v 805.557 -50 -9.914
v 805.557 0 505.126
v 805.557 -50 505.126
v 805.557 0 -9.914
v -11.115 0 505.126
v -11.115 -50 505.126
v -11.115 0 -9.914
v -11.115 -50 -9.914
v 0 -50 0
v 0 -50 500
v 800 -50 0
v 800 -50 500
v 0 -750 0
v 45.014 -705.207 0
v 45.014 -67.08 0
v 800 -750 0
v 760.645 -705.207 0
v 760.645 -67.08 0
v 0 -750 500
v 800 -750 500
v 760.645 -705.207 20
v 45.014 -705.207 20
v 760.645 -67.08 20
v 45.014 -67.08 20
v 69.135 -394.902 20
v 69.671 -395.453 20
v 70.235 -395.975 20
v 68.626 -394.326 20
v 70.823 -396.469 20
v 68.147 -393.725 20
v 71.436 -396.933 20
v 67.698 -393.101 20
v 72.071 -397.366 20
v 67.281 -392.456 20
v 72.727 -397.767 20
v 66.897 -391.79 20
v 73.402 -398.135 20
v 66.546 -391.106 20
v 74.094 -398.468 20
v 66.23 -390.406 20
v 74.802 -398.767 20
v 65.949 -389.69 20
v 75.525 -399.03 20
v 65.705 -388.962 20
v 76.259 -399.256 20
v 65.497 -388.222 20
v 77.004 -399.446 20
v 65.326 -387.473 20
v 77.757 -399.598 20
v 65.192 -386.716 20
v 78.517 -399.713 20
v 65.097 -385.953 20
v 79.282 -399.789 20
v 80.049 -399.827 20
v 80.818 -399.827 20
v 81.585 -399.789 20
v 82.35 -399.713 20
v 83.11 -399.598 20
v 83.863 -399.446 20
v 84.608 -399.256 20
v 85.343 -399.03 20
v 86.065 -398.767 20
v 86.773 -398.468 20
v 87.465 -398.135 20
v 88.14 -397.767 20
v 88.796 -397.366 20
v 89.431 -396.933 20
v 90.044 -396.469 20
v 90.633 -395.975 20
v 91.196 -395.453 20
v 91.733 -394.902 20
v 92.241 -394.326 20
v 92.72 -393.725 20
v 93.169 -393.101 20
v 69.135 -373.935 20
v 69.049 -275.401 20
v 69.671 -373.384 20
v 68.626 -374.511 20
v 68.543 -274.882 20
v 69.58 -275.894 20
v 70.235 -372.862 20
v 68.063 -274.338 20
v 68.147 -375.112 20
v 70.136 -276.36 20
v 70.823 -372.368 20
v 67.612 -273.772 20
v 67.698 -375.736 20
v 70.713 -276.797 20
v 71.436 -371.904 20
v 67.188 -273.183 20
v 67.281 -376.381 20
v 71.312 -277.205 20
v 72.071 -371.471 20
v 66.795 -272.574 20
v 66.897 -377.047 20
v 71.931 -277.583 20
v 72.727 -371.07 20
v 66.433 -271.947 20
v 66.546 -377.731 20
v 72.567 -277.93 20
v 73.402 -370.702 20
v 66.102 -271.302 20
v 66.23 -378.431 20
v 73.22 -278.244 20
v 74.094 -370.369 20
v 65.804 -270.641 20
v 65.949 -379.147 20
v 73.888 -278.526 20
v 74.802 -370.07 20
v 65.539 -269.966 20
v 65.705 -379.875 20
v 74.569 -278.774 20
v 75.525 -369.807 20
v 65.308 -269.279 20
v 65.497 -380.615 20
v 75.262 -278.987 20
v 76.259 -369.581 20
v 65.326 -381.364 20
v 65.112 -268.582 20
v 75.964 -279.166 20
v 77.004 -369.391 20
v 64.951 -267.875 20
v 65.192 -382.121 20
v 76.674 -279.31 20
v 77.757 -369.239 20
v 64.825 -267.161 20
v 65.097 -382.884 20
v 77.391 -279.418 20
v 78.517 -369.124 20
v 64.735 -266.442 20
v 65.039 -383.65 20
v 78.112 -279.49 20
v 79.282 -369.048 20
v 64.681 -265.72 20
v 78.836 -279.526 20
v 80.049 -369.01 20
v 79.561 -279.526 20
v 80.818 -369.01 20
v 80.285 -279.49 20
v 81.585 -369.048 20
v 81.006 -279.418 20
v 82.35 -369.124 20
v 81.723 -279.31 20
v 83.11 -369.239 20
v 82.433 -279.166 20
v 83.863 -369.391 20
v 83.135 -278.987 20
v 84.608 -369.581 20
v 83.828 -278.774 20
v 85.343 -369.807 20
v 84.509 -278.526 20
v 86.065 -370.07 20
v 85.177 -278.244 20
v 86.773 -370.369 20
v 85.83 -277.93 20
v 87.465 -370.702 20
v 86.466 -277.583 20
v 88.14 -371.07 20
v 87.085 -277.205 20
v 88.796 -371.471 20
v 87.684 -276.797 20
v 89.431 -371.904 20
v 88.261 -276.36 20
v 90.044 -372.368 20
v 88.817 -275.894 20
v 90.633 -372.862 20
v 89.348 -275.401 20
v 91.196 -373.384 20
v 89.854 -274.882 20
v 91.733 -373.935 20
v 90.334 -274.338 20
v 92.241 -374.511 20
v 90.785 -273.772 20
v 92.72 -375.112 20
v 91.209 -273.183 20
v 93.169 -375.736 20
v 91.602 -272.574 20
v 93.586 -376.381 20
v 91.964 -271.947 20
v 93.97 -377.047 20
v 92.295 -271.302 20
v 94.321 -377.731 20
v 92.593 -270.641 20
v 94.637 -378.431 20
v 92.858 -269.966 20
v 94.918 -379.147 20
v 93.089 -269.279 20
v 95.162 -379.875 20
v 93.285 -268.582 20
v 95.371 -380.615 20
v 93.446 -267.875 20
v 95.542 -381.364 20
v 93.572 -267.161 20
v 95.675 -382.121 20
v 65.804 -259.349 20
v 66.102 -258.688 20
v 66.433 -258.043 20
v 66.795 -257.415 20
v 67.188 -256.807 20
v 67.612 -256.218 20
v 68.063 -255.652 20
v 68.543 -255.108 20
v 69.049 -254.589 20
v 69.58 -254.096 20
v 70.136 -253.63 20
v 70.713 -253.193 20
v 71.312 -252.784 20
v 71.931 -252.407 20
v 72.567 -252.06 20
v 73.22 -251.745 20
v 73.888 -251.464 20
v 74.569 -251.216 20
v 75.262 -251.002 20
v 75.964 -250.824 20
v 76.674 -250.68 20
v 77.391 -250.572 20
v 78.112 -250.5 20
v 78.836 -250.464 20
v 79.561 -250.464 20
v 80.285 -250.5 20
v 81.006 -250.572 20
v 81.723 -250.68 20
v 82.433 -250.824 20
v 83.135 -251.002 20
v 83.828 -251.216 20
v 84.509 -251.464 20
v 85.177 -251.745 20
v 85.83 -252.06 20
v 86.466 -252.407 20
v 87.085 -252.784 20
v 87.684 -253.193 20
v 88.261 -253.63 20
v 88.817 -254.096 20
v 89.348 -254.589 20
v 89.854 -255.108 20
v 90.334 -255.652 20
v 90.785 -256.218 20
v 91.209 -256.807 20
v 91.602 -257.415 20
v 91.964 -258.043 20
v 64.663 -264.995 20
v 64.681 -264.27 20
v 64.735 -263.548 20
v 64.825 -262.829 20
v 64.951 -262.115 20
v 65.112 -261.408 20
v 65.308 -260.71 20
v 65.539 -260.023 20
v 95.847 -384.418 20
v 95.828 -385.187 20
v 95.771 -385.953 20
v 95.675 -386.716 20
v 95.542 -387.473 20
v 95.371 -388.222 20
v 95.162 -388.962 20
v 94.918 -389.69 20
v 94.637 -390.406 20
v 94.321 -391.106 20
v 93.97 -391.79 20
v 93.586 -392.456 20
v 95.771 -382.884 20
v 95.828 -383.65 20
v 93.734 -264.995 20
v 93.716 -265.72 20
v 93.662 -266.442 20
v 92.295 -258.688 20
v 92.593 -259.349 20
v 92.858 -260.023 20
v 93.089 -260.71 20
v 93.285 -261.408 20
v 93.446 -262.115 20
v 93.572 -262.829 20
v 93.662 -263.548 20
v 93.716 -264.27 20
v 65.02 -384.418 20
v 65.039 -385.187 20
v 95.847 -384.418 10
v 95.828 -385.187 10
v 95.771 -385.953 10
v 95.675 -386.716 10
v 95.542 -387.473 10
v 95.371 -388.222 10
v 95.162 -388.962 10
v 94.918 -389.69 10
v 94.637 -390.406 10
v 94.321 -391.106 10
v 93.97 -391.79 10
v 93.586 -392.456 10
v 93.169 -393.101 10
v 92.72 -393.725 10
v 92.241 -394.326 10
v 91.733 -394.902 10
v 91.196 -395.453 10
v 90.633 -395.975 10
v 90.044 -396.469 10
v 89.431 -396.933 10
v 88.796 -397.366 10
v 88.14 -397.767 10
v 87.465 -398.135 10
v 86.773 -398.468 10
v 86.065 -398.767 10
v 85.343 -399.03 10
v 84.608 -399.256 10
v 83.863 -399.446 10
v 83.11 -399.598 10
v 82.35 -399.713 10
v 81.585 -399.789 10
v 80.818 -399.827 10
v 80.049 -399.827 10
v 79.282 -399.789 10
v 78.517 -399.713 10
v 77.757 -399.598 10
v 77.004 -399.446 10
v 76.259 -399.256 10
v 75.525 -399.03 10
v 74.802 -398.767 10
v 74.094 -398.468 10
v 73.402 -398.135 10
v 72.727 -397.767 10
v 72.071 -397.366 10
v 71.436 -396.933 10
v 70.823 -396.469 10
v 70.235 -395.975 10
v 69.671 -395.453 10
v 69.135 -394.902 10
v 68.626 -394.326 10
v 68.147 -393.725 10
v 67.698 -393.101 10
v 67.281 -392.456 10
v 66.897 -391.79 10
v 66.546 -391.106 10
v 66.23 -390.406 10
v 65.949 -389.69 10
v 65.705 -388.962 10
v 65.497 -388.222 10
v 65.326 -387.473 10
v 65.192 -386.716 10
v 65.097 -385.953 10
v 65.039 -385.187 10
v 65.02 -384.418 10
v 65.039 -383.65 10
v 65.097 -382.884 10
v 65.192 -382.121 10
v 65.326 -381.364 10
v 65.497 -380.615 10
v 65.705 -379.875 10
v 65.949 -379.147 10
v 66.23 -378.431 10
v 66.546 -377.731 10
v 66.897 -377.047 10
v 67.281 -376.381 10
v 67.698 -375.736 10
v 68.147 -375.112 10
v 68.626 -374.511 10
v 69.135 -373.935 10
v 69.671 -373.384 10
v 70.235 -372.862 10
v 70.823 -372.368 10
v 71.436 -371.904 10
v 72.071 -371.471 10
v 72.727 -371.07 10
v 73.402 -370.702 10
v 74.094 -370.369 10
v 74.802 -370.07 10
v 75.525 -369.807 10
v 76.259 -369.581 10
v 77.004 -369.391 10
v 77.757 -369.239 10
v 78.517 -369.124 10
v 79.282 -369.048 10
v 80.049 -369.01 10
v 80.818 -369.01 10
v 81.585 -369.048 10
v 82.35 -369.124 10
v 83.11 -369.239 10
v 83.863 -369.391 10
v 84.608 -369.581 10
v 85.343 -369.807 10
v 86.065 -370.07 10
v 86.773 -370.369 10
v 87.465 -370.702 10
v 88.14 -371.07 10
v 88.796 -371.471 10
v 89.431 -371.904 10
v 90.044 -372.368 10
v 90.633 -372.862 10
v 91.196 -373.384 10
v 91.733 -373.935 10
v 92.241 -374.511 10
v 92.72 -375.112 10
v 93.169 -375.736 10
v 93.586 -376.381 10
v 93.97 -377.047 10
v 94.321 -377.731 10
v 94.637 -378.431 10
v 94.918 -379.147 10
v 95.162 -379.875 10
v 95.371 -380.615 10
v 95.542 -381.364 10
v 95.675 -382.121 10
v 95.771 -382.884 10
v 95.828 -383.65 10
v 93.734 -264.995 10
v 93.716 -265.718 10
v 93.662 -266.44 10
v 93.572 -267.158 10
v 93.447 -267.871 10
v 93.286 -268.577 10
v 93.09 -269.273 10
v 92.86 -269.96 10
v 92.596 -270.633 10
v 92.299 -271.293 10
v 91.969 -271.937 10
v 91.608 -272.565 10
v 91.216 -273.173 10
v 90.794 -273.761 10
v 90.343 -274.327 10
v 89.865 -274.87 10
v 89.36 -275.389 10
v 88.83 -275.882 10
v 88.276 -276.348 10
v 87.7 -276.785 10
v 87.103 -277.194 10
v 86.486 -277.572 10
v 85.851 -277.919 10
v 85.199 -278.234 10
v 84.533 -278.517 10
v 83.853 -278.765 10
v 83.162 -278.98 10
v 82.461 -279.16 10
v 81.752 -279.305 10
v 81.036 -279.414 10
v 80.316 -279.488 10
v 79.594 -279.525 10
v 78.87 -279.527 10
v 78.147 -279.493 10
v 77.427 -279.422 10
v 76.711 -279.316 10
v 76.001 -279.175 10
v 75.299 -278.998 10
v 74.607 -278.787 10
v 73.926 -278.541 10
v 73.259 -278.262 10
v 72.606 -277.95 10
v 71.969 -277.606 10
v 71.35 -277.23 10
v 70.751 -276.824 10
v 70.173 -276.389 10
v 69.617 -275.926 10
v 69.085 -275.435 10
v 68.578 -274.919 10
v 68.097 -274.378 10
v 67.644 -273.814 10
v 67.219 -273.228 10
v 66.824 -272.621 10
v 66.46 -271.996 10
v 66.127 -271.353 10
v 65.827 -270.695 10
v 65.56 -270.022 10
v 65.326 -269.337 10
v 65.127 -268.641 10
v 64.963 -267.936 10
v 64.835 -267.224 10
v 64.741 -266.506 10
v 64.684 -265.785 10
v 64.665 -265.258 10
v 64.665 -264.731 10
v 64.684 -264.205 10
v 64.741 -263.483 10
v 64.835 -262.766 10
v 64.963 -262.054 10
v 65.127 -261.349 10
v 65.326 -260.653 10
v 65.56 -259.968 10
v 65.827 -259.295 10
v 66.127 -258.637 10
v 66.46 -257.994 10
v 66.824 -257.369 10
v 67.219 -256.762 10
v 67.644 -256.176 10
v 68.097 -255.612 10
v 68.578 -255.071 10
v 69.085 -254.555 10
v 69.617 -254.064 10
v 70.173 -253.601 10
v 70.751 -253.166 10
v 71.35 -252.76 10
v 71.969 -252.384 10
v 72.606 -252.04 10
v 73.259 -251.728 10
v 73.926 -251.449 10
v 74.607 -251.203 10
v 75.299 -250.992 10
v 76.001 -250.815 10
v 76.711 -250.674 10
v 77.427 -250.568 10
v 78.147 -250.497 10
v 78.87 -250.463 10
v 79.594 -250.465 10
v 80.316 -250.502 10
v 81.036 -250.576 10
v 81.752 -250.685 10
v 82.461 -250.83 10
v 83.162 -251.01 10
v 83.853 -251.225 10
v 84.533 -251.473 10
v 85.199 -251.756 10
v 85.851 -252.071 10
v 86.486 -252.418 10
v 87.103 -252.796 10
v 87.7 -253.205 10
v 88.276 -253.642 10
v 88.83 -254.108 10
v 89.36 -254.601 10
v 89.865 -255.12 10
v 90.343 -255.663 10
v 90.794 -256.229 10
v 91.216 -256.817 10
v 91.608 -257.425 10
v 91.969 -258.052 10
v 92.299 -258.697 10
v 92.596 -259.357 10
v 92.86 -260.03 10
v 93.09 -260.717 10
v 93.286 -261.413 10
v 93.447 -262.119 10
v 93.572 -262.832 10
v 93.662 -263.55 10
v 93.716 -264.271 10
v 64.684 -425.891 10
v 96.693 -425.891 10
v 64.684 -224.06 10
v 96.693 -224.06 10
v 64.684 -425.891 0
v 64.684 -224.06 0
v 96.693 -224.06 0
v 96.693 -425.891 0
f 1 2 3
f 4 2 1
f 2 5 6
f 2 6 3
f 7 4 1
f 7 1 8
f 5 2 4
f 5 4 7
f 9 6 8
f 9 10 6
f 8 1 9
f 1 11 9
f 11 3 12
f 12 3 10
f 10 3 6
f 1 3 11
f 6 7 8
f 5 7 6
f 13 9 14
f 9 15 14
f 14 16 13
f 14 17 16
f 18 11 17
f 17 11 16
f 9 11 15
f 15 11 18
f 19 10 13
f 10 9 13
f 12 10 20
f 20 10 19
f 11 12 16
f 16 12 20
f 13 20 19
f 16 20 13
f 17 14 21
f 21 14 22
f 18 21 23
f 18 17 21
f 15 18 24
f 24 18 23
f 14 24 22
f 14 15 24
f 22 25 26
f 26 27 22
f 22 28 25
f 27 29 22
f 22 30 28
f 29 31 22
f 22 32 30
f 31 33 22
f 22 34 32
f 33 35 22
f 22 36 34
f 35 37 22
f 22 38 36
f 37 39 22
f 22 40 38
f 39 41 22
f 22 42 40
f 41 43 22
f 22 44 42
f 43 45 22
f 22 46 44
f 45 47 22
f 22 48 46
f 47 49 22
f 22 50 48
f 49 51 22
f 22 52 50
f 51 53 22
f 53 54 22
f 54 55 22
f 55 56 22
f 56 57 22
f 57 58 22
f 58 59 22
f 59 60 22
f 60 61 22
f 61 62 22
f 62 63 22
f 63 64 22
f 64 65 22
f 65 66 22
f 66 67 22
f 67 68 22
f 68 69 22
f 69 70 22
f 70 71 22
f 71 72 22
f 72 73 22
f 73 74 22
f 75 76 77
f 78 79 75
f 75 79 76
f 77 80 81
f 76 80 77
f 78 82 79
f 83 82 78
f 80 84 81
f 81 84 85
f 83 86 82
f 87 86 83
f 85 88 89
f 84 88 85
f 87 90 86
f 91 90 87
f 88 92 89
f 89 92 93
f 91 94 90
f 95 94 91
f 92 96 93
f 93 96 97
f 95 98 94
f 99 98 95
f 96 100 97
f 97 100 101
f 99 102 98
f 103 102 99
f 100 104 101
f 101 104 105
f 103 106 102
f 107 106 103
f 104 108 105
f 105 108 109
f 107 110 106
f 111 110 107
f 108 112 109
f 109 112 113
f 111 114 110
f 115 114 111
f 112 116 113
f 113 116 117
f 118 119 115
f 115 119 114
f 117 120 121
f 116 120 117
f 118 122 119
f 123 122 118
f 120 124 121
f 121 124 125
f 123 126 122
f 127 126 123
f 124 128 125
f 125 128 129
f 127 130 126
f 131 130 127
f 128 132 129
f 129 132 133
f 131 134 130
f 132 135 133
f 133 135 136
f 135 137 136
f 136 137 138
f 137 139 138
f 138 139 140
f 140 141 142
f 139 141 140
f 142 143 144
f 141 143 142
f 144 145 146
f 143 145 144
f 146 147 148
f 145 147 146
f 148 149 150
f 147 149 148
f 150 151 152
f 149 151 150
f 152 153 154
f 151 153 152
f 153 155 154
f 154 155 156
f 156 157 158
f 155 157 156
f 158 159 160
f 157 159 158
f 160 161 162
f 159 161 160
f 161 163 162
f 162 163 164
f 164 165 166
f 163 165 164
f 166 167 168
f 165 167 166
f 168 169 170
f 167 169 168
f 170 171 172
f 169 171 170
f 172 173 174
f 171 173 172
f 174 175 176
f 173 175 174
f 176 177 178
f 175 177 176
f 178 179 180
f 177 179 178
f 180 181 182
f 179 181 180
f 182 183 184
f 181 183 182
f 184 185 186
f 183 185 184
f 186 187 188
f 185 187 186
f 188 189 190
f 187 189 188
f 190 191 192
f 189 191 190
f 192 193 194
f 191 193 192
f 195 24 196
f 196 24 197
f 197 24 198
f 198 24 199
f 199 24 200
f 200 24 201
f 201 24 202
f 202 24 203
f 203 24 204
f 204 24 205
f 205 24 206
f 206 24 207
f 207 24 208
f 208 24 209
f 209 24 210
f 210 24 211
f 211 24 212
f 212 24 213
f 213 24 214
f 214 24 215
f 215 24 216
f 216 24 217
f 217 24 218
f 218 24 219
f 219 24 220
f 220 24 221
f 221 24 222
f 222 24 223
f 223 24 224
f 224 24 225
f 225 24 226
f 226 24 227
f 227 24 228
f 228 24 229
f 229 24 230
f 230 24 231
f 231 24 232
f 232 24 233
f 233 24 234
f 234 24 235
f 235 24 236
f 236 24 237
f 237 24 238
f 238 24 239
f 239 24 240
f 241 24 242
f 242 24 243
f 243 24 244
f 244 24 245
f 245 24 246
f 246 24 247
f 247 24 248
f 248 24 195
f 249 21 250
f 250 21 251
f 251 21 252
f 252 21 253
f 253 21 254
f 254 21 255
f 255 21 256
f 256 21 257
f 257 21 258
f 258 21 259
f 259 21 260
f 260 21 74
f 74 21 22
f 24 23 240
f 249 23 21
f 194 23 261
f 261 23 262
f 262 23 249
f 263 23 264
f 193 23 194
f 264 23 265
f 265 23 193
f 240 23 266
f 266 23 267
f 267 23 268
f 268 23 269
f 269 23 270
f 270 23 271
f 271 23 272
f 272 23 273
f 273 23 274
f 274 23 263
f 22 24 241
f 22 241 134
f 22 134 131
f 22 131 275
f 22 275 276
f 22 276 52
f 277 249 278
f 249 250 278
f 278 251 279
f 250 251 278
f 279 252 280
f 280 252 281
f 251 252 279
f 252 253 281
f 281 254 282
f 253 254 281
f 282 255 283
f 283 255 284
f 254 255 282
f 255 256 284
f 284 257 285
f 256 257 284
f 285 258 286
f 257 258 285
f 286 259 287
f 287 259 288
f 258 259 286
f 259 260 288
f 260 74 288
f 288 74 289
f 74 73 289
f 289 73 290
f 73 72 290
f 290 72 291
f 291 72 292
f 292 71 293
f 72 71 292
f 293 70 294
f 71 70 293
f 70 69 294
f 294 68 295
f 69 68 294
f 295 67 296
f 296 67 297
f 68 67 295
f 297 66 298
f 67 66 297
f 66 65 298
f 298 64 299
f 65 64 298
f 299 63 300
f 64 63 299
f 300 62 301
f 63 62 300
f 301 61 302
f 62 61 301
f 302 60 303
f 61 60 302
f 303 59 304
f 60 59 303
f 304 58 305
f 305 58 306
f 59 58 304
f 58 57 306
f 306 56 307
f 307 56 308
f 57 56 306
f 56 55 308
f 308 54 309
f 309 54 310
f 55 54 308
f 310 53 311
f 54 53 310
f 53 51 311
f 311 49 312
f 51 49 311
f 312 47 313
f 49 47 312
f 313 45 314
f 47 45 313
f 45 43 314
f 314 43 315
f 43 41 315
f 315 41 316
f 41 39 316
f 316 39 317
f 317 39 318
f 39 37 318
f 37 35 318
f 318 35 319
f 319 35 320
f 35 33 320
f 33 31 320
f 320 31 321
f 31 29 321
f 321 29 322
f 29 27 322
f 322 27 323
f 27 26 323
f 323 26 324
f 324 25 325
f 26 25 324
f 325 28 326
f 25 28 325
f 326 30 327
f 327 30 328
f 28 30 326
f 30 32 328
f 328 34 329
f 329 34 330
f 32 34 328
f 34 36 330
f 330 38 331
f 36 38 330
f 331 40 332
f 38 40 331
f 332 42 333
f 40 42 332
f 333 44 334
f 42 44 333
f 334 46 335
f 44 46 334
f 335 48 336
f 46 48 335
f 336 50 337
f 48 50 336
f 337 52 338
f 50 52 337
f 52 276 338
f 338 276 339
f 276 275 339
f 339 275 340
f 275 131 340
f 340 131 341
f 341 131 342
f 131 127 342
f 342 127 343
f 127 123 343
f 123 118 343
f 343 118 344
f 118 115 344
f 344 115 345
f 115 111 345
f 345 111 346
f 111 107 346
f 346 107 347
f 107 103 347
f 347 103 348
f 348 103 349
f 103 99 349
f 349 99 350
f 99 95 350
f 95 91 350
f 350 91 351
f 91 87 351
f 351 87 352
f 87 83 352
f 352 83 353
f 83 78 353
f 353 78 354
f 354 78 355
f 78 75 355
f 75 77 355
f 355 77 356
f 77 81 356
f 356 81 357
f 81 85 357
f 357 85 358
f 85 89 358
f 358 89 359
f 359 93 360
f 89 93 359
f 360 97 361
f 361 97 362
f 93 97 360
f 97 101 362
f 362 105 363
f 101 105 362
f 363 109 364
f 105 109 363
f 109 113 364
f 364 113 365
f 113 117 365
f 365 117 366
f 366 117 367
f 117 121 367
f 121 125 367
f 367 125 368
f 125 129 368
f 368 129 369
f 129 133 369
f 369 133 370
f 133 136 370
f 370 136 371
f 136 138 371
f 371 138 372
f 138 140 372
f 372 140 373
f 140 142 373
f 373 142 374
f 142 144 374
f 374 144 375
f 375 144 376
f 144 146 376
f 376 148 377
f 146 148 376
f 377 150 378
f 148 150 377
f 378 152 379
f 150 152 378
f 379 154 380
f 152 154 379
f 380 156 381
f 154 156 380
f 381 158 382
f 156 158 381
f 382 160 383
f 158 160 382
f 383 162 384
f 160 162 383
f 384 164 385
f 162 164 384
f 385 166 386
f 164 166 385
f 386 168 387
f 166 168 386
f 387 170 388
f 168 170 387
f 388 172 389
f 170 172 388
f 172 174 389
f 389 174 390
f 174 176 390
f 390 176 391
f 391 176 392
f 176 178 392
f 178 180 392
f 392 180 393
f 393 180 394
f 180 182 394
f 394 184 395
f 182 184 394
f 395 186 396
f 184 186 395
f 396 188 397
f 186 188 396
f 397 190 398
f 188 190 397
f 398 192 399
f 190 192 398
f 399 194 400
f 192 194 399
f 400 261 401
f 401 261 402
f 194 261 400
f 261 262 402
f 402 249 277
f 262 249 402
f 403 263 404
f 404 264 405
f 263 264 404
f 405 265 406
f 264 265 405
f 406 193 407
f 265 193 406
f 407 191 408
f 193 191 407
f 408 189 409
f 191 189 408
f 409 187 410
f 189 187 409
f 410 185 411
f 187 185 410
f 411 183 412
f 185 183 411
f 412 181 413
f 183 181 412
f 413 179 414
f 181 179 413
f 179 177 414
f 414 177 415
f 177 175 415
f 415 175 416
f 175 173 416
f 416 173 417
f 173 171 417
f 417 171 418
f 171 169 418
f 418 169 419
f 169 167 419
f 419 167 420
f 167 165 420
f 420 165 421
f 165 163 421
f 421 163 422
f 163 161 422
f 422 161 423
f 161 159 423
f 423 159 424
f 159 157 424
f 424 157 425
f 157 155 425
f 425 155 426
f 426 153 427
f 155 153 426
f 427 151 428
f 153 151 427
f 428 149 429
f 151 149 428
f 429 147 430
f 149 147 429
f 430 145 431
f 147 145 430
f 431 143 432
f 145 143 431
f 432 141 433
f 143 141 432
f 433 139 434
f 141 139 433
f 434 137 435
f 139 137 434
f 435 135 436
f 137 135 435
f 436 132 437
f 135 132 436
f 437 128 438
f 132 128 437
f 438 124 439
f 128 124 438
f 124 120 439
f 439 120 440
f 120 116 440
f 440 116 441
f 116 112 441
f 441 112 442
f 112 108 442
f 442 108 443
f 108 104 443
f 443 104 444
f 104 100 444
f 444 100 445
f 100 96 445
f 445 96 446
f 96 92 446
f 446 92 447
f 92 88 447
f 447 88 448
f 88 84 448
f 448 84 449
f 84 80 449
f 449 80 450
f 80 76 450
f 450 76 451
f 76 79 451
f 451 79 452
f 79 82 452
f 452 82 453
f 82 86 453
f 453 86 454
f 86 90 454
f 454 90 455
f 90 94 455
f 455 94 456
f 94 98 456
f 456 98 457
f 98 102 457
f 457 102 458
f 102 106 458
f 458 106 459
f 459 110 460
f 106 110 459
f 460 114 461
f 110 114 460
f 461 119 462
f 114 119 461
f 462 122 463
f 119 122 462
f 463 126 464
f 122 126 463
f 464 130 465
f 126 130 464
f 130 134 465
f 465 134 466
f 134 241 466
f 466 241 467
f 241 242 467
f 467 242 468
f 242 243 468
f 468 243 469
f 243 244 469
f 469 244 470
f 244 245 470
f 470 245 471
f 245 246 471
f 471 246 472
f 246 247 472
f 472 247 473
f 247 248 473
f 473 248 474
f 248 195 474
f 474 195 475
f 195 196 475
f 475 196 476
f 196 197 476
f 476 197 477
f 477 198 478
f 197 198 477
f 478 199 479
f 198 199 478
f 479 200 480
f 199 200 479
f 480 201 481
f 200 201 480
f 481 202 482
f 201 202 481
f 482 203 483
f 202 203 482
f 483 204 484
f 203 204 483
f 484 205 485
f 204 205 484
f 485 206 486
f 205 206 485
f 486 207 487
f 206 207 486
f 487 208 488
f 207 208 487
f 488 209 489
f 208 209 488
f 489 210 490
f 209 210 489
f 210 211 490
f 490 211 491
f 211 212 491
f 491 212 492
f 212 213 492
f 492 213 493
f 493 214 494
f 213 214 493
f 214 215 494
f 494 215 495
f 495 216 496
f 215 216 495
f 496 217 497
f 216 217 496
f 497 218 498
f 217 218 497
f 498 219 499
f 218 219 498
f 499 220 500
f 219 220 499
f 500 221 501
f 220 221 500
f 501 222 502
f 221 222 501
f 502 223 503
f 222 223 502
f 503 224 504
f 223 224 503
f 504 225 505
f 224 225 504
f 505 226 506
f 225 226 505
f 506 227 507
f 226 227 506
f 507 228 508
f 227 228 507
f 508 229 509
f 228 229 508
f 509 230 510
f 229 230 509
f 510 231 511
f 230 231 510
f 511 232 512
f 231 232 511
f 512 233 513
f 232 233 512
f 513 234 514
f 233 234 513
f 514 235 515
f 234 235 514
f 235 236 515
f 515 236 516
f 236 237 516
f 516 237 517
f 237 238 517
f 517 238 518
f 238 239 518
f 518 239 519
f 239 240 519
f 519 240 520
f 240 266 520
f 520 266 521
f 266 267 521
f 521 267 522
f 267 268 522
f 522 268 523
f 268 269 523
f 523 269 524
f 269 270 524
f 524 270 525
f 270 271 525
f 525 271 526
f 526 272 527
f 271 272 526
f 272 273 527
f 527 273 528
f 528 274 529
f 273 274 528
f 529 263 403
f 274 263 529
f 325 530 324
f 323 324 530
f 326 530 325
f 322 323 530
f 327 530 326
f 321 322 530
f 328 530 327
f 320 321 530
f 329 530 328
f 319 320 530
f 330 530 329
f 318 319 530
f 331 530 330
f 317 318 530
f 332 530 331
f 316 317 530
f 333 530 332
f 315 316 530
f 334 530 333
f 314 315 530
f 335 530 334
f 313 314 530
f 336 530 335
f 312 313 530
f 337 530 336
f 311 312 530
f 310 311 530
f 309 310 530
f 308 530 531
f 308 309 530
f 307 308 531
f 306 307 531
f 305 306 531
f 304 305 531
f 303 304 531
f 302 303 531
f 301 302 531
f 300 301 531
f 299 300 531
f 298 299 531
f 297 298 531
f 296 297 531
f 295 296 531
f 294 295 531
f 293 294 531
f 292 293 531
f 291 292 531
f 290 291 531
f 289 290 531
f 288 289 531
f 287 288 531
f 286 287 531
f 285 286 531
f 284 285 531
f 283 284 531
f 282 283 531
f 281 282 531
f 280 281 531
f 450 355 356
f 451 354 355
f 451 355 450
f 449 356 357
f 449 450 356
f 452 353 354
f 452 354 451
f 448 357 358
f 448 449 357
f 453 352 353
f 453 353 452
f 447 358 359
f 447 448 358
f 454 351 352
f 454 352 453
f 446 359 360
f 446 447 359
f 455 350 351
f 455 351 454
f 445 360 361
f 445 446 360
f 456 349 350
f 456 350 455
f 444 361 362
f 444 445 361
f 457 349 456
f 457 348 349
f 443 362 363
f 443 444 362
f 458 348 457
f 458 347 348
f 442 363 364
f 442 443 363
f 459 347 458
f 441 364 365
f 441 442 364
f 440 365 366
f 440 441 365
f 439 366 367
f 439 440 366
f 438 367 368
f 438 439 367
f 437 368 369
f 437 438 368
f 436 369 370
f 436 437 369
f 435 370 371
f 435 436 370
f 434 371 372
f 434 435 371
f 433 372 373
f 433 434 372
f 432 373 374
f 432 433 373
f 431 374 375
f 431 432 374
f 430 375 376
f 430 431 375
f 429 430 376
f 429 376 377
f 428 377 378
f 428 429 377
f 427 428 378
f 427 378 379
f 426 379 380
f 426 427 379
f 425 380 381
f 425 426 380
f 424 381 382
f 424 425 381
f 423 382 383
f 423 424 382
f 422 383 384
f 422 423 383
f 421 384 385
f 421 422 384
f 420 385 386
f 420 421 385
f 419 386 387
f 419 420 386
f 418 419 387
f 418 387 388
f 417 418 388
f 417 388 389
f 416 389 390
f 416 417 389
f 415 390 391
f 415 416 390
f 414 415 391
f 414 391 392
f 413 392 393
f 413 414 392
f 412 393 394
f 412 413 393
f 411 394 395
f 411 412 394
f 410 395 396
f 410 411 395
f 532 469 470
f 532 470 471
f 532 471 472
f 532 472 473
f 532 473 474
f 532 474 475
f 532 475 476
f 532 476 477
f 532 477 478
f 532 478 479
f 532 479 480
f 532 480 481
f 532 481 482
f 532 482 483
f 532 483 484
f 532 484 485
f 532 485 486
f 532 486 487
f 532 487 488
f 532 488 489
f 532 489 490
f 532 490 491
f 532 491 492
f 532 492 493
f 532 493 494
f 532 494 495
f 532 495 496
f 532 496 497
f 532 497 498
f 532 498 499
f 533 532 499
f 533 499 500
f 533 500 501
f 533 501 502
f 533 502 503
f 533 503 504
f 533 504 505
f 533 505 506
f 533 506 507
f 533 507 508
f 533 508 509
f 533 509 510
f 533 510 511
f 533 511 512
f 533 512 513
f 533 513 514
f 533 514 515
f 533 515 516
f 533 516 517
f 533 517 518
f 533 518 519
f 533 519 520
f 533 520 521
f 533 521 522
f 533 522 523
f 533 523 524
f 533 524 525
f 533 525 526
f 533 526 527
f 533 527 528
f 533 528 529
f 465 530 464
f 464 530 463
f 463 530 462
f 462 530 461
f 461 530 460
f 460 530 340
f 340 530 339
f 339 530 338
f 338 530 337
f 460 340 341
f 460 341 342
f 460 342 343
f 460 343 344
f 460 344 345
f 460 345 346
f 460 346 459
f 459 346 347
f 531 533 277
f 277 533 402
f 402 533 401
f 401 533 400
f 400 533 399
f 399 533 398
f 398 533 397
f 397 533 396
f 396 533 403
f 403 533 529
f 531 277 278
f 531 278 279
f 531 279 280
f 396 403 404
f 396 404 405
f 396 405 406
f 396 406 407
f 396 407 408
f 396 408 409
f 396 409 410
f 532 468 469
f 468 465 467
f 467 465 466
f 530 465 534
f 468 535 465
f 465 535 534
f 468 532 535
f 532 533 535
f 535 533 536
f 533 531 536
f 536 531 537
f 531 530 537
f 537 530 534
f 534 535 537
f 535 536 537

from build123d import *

# Parameters (mm, degrees)
SKETCH_W      = 800
SKETCH_H      = 500
PAD_DEPTH     = 750
SKETCH001_W   = 816.672542
SKETCH001_H   = 515.040198
PAD001_DEPTH  = 50
SKETCH002_W   = 715.631729
SKETCH002_H   = 638.12648
POCKET_DEPTH  = 20
SKETCH003_R   = 15.413666
SKETCH003_R_2 = 14.535816
PAD002_DEPTH  = 10
SKETCH004_W   = 32.008468
SKETCH004_H   = 201.831192
PAD003_DEPTH  = 10


with BuildPart() as part:
    # Sketch → Pad (new body)
    with BuildSketch(Plane.XZ):
        with Locations((400, 250)):
            Rectangle(SKETCH_W, SKETCH_H)
    extrude(amount=PAD_DEPTH)

    # Sketch001 (on Face5 of Pad) → Pad001 (join)
    with BuildSketch(Plane(origin=(0, 0, 0), x_dir=(1, 0, 0), z_dir=(0, 1, 0))):
        with Locations((397.221163, -247.606335)):
            Rectangle(SKETCH001_W, SKETCH001_H)
    extrude(amount=-PAD001_DEPTH)

    # Sketch002 (on Face6 of Pad001) → Pocket (cut)
    with BuildSketch(Plane(origin=(0, 0, 0), x_dir=(1, 0, 0), z_dir=(0, 0, -1))):
        with Locations((402.8294, 386.143486)):
            Rectangle(SKETCH002_W, SKETCH002_H)
    extrude(amount=-POCKET_DEPTH, mode=Mode.SUBTRACT)

    # Sketch003 (on Face16 of Pocket) → Pad002 (join)
    with BuildSketch(Plane(origin=(0, 0, 20), x_dir=(1, 0, 0), z_dir=(0, 0, -1))):
        with Locations((80.433578, 384.418488)):
            Circle(SKETCH003_R)
        with Locations((79.198502, 264.994965)):
            Circle(SKETCH003_R_2)
    extrude(amount=PAD002_DEPTH)

    # Sketch004 (on Face20 of Pad002) → Pad003 (join)
    with BuildSketch(Plane(origin=(0, 0, 10), x_dir=(1, 0, 0), z_dir=(0, 0, -1))):
        with Locations((80.688408, 324.975487)):
            Rectangle(SKETCH004_W, SKETCH004_H)
    extrude(amount=PAD003_DEPTH)


solid = part.part
